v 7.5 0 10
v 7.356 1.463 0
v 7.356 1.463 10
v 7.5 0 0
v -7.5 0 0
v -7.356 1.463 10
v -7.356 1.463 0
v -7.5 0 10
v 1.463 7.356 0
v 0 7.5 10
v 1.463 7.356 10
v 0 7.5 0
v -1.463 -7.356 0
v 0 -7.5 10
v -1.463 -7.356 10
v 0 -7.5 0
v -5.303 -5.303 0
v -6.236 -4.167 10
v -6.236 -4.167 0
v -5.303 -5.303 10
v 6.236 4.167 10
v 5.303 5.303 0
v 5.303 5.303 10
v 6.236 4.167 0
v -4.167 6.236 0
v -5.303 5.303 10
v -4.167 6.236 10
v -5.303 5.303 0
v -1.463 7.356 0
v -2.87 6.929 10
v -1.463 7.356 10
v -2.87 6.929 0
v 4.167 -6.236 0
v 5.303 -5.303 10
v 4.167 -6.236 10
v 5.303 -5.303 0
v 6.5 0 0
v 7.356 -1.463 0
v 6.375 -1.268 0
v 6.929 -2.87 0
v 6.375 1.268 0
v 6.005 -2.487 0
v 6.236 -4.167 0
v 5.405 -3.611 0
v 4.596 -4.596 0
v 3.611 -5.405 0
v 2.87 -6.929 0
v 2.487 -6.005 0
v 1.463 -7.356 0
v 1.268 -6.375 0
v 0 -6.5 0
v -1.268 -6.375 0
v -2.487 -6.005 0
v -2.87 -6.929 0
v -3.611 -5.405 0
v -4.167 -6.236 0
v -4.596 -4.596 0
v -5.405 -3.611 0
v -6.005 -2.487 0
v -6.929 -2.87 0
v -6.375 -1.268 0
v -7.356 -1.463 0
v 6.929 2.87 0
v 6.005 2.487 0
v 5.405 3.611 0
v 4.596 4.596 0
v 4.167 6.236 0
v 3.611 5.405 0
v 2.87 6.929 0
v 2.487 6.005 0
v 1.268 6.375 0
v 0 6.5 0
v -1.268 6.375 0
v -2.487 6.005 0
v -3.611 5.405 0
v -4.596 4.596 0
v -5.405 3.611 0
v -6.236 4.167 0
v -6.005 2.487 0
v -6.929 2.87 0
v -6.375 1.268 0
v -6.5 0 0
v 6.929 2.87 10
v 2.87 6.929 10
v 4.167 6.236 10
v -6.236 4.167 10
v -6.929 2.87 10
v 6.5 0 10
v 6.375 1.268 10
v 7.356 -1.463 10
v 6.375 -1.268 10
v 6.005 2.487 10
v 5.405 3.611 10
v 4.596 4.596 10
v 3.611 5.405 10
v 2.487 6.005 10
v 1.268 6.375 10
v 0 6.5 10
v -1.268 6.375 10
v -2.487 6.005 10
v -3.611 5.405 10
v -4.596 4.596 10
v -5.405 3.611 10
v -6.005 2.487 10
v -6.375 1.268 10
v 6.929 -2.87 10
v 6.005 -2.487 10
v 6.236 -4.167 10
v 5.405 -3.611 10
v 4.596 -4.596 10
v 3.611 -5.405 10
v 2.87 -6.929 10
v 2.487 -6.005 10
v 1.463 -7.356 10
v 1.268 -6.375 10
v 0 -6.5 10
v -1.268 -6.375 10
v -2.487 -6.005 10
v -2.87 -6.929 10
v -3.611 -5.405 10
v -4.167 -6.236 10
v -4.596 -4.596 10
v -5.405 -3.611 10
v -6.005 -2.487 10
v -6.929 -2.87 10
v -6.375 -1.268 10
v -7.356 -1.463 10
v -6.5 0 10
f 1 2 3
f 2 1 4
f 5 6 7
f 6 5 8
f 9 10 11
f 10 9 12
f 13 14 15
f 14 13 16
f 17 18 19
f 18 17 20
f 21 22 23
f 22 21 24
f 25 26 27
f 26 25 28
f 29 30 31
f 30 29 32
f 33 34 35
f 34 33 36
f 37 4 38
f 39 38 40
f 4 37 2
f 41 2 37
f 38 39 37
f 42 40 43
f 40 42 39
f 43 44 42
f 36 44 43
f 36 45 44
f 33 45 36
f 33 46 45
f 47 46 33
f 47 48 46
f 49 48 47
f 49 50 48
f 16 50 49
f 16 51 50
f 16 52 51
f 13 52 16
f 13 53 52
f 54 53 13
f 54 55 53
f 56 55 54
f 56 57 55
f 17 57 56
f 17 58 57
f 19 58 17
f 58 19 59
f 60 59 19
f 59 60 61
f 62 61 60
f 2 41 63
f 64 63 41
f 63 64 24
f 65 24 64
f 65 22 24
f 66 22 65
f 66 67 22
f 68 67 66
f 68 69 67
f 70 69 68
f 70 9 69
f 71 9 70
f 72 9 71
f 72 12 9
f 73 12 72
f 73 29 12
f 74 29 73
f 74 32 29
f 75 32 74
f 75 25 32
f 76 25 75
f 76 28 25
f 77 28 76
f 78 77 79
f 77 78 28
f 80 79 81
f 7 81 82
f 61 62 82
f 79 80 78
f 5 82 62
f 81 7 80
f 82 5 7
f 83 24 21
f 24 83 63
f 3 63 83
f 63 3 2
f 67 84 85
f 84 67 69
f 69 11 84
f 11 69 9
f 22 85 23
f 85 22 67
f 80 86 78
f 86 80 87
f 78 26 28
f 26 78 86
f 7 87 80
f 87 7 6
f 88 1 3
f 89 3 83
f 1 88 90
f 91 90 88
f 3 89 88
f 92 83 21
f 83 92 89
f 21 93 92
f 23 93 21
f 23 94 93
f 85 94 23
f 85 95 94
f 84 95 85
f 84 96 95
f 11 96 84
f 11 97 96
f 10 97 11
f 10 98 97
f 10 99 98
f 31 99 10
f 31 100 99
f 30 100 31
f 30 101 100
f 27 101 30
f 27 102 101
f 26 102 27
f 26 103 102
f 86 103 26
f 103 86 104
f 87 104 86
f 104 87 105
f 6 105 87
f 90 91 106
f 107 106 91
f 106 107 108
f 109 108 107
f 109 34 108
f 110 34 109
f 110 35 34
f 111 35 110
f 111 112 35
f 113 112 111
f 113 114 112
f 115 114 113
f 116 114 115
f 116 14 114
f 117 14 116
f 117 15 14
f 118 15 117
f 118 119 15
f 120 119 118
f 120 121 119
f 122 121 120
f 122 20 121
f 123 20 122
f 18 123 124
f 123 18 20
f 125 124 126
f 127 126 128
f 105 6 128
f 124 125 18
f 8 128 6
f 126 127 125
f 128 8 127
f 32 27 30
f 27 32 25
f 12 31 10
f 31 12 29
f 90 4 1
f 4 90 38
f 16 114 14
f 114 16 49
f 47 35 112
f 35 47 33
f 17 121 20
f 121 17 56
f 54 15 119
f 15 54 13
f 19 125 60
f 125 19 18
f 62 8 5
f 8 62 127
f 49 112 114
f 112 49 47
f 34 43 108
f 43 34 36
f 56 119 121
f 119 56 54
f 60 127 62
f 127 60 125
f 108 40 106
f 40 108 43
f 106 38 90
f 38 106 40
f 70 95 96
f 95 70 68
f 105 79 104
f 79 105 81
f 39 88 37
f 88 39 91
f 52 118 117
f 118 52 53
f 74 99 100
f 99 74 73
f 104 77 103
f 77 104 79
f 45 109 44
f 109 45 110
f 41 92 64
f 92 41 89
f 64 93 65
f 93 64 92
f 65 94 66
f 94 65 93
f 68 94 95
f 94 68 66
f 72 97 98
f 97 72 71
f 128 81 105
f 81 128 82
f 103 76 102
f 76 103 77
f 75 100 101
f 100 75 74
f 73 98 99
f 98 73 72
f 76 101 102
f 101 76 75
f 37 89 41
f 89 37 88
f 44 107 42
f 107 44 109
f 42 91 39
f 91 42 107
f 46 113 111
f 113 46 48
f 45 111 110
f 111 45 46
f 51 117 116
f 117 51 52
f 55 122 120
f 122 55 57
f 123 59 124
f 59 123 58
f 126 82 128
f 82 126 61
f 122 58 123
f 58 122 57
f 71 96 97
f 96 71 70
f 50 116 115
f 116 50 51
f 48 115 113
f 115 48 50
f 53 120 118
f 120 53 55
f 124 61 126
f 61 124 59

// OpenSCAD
// This is a trivial tool to support a 16mm lens as it is inserted
// into the holder.  Part of the OpenFlexure Microscope.

// (c) 2017 Richard Bowman, released under CERN open hardware license.

difference(){
    cylinder(d=15, h=10, $fn=32);
    cylinder(d=13, h=999, center=true, $fn=32);
}
